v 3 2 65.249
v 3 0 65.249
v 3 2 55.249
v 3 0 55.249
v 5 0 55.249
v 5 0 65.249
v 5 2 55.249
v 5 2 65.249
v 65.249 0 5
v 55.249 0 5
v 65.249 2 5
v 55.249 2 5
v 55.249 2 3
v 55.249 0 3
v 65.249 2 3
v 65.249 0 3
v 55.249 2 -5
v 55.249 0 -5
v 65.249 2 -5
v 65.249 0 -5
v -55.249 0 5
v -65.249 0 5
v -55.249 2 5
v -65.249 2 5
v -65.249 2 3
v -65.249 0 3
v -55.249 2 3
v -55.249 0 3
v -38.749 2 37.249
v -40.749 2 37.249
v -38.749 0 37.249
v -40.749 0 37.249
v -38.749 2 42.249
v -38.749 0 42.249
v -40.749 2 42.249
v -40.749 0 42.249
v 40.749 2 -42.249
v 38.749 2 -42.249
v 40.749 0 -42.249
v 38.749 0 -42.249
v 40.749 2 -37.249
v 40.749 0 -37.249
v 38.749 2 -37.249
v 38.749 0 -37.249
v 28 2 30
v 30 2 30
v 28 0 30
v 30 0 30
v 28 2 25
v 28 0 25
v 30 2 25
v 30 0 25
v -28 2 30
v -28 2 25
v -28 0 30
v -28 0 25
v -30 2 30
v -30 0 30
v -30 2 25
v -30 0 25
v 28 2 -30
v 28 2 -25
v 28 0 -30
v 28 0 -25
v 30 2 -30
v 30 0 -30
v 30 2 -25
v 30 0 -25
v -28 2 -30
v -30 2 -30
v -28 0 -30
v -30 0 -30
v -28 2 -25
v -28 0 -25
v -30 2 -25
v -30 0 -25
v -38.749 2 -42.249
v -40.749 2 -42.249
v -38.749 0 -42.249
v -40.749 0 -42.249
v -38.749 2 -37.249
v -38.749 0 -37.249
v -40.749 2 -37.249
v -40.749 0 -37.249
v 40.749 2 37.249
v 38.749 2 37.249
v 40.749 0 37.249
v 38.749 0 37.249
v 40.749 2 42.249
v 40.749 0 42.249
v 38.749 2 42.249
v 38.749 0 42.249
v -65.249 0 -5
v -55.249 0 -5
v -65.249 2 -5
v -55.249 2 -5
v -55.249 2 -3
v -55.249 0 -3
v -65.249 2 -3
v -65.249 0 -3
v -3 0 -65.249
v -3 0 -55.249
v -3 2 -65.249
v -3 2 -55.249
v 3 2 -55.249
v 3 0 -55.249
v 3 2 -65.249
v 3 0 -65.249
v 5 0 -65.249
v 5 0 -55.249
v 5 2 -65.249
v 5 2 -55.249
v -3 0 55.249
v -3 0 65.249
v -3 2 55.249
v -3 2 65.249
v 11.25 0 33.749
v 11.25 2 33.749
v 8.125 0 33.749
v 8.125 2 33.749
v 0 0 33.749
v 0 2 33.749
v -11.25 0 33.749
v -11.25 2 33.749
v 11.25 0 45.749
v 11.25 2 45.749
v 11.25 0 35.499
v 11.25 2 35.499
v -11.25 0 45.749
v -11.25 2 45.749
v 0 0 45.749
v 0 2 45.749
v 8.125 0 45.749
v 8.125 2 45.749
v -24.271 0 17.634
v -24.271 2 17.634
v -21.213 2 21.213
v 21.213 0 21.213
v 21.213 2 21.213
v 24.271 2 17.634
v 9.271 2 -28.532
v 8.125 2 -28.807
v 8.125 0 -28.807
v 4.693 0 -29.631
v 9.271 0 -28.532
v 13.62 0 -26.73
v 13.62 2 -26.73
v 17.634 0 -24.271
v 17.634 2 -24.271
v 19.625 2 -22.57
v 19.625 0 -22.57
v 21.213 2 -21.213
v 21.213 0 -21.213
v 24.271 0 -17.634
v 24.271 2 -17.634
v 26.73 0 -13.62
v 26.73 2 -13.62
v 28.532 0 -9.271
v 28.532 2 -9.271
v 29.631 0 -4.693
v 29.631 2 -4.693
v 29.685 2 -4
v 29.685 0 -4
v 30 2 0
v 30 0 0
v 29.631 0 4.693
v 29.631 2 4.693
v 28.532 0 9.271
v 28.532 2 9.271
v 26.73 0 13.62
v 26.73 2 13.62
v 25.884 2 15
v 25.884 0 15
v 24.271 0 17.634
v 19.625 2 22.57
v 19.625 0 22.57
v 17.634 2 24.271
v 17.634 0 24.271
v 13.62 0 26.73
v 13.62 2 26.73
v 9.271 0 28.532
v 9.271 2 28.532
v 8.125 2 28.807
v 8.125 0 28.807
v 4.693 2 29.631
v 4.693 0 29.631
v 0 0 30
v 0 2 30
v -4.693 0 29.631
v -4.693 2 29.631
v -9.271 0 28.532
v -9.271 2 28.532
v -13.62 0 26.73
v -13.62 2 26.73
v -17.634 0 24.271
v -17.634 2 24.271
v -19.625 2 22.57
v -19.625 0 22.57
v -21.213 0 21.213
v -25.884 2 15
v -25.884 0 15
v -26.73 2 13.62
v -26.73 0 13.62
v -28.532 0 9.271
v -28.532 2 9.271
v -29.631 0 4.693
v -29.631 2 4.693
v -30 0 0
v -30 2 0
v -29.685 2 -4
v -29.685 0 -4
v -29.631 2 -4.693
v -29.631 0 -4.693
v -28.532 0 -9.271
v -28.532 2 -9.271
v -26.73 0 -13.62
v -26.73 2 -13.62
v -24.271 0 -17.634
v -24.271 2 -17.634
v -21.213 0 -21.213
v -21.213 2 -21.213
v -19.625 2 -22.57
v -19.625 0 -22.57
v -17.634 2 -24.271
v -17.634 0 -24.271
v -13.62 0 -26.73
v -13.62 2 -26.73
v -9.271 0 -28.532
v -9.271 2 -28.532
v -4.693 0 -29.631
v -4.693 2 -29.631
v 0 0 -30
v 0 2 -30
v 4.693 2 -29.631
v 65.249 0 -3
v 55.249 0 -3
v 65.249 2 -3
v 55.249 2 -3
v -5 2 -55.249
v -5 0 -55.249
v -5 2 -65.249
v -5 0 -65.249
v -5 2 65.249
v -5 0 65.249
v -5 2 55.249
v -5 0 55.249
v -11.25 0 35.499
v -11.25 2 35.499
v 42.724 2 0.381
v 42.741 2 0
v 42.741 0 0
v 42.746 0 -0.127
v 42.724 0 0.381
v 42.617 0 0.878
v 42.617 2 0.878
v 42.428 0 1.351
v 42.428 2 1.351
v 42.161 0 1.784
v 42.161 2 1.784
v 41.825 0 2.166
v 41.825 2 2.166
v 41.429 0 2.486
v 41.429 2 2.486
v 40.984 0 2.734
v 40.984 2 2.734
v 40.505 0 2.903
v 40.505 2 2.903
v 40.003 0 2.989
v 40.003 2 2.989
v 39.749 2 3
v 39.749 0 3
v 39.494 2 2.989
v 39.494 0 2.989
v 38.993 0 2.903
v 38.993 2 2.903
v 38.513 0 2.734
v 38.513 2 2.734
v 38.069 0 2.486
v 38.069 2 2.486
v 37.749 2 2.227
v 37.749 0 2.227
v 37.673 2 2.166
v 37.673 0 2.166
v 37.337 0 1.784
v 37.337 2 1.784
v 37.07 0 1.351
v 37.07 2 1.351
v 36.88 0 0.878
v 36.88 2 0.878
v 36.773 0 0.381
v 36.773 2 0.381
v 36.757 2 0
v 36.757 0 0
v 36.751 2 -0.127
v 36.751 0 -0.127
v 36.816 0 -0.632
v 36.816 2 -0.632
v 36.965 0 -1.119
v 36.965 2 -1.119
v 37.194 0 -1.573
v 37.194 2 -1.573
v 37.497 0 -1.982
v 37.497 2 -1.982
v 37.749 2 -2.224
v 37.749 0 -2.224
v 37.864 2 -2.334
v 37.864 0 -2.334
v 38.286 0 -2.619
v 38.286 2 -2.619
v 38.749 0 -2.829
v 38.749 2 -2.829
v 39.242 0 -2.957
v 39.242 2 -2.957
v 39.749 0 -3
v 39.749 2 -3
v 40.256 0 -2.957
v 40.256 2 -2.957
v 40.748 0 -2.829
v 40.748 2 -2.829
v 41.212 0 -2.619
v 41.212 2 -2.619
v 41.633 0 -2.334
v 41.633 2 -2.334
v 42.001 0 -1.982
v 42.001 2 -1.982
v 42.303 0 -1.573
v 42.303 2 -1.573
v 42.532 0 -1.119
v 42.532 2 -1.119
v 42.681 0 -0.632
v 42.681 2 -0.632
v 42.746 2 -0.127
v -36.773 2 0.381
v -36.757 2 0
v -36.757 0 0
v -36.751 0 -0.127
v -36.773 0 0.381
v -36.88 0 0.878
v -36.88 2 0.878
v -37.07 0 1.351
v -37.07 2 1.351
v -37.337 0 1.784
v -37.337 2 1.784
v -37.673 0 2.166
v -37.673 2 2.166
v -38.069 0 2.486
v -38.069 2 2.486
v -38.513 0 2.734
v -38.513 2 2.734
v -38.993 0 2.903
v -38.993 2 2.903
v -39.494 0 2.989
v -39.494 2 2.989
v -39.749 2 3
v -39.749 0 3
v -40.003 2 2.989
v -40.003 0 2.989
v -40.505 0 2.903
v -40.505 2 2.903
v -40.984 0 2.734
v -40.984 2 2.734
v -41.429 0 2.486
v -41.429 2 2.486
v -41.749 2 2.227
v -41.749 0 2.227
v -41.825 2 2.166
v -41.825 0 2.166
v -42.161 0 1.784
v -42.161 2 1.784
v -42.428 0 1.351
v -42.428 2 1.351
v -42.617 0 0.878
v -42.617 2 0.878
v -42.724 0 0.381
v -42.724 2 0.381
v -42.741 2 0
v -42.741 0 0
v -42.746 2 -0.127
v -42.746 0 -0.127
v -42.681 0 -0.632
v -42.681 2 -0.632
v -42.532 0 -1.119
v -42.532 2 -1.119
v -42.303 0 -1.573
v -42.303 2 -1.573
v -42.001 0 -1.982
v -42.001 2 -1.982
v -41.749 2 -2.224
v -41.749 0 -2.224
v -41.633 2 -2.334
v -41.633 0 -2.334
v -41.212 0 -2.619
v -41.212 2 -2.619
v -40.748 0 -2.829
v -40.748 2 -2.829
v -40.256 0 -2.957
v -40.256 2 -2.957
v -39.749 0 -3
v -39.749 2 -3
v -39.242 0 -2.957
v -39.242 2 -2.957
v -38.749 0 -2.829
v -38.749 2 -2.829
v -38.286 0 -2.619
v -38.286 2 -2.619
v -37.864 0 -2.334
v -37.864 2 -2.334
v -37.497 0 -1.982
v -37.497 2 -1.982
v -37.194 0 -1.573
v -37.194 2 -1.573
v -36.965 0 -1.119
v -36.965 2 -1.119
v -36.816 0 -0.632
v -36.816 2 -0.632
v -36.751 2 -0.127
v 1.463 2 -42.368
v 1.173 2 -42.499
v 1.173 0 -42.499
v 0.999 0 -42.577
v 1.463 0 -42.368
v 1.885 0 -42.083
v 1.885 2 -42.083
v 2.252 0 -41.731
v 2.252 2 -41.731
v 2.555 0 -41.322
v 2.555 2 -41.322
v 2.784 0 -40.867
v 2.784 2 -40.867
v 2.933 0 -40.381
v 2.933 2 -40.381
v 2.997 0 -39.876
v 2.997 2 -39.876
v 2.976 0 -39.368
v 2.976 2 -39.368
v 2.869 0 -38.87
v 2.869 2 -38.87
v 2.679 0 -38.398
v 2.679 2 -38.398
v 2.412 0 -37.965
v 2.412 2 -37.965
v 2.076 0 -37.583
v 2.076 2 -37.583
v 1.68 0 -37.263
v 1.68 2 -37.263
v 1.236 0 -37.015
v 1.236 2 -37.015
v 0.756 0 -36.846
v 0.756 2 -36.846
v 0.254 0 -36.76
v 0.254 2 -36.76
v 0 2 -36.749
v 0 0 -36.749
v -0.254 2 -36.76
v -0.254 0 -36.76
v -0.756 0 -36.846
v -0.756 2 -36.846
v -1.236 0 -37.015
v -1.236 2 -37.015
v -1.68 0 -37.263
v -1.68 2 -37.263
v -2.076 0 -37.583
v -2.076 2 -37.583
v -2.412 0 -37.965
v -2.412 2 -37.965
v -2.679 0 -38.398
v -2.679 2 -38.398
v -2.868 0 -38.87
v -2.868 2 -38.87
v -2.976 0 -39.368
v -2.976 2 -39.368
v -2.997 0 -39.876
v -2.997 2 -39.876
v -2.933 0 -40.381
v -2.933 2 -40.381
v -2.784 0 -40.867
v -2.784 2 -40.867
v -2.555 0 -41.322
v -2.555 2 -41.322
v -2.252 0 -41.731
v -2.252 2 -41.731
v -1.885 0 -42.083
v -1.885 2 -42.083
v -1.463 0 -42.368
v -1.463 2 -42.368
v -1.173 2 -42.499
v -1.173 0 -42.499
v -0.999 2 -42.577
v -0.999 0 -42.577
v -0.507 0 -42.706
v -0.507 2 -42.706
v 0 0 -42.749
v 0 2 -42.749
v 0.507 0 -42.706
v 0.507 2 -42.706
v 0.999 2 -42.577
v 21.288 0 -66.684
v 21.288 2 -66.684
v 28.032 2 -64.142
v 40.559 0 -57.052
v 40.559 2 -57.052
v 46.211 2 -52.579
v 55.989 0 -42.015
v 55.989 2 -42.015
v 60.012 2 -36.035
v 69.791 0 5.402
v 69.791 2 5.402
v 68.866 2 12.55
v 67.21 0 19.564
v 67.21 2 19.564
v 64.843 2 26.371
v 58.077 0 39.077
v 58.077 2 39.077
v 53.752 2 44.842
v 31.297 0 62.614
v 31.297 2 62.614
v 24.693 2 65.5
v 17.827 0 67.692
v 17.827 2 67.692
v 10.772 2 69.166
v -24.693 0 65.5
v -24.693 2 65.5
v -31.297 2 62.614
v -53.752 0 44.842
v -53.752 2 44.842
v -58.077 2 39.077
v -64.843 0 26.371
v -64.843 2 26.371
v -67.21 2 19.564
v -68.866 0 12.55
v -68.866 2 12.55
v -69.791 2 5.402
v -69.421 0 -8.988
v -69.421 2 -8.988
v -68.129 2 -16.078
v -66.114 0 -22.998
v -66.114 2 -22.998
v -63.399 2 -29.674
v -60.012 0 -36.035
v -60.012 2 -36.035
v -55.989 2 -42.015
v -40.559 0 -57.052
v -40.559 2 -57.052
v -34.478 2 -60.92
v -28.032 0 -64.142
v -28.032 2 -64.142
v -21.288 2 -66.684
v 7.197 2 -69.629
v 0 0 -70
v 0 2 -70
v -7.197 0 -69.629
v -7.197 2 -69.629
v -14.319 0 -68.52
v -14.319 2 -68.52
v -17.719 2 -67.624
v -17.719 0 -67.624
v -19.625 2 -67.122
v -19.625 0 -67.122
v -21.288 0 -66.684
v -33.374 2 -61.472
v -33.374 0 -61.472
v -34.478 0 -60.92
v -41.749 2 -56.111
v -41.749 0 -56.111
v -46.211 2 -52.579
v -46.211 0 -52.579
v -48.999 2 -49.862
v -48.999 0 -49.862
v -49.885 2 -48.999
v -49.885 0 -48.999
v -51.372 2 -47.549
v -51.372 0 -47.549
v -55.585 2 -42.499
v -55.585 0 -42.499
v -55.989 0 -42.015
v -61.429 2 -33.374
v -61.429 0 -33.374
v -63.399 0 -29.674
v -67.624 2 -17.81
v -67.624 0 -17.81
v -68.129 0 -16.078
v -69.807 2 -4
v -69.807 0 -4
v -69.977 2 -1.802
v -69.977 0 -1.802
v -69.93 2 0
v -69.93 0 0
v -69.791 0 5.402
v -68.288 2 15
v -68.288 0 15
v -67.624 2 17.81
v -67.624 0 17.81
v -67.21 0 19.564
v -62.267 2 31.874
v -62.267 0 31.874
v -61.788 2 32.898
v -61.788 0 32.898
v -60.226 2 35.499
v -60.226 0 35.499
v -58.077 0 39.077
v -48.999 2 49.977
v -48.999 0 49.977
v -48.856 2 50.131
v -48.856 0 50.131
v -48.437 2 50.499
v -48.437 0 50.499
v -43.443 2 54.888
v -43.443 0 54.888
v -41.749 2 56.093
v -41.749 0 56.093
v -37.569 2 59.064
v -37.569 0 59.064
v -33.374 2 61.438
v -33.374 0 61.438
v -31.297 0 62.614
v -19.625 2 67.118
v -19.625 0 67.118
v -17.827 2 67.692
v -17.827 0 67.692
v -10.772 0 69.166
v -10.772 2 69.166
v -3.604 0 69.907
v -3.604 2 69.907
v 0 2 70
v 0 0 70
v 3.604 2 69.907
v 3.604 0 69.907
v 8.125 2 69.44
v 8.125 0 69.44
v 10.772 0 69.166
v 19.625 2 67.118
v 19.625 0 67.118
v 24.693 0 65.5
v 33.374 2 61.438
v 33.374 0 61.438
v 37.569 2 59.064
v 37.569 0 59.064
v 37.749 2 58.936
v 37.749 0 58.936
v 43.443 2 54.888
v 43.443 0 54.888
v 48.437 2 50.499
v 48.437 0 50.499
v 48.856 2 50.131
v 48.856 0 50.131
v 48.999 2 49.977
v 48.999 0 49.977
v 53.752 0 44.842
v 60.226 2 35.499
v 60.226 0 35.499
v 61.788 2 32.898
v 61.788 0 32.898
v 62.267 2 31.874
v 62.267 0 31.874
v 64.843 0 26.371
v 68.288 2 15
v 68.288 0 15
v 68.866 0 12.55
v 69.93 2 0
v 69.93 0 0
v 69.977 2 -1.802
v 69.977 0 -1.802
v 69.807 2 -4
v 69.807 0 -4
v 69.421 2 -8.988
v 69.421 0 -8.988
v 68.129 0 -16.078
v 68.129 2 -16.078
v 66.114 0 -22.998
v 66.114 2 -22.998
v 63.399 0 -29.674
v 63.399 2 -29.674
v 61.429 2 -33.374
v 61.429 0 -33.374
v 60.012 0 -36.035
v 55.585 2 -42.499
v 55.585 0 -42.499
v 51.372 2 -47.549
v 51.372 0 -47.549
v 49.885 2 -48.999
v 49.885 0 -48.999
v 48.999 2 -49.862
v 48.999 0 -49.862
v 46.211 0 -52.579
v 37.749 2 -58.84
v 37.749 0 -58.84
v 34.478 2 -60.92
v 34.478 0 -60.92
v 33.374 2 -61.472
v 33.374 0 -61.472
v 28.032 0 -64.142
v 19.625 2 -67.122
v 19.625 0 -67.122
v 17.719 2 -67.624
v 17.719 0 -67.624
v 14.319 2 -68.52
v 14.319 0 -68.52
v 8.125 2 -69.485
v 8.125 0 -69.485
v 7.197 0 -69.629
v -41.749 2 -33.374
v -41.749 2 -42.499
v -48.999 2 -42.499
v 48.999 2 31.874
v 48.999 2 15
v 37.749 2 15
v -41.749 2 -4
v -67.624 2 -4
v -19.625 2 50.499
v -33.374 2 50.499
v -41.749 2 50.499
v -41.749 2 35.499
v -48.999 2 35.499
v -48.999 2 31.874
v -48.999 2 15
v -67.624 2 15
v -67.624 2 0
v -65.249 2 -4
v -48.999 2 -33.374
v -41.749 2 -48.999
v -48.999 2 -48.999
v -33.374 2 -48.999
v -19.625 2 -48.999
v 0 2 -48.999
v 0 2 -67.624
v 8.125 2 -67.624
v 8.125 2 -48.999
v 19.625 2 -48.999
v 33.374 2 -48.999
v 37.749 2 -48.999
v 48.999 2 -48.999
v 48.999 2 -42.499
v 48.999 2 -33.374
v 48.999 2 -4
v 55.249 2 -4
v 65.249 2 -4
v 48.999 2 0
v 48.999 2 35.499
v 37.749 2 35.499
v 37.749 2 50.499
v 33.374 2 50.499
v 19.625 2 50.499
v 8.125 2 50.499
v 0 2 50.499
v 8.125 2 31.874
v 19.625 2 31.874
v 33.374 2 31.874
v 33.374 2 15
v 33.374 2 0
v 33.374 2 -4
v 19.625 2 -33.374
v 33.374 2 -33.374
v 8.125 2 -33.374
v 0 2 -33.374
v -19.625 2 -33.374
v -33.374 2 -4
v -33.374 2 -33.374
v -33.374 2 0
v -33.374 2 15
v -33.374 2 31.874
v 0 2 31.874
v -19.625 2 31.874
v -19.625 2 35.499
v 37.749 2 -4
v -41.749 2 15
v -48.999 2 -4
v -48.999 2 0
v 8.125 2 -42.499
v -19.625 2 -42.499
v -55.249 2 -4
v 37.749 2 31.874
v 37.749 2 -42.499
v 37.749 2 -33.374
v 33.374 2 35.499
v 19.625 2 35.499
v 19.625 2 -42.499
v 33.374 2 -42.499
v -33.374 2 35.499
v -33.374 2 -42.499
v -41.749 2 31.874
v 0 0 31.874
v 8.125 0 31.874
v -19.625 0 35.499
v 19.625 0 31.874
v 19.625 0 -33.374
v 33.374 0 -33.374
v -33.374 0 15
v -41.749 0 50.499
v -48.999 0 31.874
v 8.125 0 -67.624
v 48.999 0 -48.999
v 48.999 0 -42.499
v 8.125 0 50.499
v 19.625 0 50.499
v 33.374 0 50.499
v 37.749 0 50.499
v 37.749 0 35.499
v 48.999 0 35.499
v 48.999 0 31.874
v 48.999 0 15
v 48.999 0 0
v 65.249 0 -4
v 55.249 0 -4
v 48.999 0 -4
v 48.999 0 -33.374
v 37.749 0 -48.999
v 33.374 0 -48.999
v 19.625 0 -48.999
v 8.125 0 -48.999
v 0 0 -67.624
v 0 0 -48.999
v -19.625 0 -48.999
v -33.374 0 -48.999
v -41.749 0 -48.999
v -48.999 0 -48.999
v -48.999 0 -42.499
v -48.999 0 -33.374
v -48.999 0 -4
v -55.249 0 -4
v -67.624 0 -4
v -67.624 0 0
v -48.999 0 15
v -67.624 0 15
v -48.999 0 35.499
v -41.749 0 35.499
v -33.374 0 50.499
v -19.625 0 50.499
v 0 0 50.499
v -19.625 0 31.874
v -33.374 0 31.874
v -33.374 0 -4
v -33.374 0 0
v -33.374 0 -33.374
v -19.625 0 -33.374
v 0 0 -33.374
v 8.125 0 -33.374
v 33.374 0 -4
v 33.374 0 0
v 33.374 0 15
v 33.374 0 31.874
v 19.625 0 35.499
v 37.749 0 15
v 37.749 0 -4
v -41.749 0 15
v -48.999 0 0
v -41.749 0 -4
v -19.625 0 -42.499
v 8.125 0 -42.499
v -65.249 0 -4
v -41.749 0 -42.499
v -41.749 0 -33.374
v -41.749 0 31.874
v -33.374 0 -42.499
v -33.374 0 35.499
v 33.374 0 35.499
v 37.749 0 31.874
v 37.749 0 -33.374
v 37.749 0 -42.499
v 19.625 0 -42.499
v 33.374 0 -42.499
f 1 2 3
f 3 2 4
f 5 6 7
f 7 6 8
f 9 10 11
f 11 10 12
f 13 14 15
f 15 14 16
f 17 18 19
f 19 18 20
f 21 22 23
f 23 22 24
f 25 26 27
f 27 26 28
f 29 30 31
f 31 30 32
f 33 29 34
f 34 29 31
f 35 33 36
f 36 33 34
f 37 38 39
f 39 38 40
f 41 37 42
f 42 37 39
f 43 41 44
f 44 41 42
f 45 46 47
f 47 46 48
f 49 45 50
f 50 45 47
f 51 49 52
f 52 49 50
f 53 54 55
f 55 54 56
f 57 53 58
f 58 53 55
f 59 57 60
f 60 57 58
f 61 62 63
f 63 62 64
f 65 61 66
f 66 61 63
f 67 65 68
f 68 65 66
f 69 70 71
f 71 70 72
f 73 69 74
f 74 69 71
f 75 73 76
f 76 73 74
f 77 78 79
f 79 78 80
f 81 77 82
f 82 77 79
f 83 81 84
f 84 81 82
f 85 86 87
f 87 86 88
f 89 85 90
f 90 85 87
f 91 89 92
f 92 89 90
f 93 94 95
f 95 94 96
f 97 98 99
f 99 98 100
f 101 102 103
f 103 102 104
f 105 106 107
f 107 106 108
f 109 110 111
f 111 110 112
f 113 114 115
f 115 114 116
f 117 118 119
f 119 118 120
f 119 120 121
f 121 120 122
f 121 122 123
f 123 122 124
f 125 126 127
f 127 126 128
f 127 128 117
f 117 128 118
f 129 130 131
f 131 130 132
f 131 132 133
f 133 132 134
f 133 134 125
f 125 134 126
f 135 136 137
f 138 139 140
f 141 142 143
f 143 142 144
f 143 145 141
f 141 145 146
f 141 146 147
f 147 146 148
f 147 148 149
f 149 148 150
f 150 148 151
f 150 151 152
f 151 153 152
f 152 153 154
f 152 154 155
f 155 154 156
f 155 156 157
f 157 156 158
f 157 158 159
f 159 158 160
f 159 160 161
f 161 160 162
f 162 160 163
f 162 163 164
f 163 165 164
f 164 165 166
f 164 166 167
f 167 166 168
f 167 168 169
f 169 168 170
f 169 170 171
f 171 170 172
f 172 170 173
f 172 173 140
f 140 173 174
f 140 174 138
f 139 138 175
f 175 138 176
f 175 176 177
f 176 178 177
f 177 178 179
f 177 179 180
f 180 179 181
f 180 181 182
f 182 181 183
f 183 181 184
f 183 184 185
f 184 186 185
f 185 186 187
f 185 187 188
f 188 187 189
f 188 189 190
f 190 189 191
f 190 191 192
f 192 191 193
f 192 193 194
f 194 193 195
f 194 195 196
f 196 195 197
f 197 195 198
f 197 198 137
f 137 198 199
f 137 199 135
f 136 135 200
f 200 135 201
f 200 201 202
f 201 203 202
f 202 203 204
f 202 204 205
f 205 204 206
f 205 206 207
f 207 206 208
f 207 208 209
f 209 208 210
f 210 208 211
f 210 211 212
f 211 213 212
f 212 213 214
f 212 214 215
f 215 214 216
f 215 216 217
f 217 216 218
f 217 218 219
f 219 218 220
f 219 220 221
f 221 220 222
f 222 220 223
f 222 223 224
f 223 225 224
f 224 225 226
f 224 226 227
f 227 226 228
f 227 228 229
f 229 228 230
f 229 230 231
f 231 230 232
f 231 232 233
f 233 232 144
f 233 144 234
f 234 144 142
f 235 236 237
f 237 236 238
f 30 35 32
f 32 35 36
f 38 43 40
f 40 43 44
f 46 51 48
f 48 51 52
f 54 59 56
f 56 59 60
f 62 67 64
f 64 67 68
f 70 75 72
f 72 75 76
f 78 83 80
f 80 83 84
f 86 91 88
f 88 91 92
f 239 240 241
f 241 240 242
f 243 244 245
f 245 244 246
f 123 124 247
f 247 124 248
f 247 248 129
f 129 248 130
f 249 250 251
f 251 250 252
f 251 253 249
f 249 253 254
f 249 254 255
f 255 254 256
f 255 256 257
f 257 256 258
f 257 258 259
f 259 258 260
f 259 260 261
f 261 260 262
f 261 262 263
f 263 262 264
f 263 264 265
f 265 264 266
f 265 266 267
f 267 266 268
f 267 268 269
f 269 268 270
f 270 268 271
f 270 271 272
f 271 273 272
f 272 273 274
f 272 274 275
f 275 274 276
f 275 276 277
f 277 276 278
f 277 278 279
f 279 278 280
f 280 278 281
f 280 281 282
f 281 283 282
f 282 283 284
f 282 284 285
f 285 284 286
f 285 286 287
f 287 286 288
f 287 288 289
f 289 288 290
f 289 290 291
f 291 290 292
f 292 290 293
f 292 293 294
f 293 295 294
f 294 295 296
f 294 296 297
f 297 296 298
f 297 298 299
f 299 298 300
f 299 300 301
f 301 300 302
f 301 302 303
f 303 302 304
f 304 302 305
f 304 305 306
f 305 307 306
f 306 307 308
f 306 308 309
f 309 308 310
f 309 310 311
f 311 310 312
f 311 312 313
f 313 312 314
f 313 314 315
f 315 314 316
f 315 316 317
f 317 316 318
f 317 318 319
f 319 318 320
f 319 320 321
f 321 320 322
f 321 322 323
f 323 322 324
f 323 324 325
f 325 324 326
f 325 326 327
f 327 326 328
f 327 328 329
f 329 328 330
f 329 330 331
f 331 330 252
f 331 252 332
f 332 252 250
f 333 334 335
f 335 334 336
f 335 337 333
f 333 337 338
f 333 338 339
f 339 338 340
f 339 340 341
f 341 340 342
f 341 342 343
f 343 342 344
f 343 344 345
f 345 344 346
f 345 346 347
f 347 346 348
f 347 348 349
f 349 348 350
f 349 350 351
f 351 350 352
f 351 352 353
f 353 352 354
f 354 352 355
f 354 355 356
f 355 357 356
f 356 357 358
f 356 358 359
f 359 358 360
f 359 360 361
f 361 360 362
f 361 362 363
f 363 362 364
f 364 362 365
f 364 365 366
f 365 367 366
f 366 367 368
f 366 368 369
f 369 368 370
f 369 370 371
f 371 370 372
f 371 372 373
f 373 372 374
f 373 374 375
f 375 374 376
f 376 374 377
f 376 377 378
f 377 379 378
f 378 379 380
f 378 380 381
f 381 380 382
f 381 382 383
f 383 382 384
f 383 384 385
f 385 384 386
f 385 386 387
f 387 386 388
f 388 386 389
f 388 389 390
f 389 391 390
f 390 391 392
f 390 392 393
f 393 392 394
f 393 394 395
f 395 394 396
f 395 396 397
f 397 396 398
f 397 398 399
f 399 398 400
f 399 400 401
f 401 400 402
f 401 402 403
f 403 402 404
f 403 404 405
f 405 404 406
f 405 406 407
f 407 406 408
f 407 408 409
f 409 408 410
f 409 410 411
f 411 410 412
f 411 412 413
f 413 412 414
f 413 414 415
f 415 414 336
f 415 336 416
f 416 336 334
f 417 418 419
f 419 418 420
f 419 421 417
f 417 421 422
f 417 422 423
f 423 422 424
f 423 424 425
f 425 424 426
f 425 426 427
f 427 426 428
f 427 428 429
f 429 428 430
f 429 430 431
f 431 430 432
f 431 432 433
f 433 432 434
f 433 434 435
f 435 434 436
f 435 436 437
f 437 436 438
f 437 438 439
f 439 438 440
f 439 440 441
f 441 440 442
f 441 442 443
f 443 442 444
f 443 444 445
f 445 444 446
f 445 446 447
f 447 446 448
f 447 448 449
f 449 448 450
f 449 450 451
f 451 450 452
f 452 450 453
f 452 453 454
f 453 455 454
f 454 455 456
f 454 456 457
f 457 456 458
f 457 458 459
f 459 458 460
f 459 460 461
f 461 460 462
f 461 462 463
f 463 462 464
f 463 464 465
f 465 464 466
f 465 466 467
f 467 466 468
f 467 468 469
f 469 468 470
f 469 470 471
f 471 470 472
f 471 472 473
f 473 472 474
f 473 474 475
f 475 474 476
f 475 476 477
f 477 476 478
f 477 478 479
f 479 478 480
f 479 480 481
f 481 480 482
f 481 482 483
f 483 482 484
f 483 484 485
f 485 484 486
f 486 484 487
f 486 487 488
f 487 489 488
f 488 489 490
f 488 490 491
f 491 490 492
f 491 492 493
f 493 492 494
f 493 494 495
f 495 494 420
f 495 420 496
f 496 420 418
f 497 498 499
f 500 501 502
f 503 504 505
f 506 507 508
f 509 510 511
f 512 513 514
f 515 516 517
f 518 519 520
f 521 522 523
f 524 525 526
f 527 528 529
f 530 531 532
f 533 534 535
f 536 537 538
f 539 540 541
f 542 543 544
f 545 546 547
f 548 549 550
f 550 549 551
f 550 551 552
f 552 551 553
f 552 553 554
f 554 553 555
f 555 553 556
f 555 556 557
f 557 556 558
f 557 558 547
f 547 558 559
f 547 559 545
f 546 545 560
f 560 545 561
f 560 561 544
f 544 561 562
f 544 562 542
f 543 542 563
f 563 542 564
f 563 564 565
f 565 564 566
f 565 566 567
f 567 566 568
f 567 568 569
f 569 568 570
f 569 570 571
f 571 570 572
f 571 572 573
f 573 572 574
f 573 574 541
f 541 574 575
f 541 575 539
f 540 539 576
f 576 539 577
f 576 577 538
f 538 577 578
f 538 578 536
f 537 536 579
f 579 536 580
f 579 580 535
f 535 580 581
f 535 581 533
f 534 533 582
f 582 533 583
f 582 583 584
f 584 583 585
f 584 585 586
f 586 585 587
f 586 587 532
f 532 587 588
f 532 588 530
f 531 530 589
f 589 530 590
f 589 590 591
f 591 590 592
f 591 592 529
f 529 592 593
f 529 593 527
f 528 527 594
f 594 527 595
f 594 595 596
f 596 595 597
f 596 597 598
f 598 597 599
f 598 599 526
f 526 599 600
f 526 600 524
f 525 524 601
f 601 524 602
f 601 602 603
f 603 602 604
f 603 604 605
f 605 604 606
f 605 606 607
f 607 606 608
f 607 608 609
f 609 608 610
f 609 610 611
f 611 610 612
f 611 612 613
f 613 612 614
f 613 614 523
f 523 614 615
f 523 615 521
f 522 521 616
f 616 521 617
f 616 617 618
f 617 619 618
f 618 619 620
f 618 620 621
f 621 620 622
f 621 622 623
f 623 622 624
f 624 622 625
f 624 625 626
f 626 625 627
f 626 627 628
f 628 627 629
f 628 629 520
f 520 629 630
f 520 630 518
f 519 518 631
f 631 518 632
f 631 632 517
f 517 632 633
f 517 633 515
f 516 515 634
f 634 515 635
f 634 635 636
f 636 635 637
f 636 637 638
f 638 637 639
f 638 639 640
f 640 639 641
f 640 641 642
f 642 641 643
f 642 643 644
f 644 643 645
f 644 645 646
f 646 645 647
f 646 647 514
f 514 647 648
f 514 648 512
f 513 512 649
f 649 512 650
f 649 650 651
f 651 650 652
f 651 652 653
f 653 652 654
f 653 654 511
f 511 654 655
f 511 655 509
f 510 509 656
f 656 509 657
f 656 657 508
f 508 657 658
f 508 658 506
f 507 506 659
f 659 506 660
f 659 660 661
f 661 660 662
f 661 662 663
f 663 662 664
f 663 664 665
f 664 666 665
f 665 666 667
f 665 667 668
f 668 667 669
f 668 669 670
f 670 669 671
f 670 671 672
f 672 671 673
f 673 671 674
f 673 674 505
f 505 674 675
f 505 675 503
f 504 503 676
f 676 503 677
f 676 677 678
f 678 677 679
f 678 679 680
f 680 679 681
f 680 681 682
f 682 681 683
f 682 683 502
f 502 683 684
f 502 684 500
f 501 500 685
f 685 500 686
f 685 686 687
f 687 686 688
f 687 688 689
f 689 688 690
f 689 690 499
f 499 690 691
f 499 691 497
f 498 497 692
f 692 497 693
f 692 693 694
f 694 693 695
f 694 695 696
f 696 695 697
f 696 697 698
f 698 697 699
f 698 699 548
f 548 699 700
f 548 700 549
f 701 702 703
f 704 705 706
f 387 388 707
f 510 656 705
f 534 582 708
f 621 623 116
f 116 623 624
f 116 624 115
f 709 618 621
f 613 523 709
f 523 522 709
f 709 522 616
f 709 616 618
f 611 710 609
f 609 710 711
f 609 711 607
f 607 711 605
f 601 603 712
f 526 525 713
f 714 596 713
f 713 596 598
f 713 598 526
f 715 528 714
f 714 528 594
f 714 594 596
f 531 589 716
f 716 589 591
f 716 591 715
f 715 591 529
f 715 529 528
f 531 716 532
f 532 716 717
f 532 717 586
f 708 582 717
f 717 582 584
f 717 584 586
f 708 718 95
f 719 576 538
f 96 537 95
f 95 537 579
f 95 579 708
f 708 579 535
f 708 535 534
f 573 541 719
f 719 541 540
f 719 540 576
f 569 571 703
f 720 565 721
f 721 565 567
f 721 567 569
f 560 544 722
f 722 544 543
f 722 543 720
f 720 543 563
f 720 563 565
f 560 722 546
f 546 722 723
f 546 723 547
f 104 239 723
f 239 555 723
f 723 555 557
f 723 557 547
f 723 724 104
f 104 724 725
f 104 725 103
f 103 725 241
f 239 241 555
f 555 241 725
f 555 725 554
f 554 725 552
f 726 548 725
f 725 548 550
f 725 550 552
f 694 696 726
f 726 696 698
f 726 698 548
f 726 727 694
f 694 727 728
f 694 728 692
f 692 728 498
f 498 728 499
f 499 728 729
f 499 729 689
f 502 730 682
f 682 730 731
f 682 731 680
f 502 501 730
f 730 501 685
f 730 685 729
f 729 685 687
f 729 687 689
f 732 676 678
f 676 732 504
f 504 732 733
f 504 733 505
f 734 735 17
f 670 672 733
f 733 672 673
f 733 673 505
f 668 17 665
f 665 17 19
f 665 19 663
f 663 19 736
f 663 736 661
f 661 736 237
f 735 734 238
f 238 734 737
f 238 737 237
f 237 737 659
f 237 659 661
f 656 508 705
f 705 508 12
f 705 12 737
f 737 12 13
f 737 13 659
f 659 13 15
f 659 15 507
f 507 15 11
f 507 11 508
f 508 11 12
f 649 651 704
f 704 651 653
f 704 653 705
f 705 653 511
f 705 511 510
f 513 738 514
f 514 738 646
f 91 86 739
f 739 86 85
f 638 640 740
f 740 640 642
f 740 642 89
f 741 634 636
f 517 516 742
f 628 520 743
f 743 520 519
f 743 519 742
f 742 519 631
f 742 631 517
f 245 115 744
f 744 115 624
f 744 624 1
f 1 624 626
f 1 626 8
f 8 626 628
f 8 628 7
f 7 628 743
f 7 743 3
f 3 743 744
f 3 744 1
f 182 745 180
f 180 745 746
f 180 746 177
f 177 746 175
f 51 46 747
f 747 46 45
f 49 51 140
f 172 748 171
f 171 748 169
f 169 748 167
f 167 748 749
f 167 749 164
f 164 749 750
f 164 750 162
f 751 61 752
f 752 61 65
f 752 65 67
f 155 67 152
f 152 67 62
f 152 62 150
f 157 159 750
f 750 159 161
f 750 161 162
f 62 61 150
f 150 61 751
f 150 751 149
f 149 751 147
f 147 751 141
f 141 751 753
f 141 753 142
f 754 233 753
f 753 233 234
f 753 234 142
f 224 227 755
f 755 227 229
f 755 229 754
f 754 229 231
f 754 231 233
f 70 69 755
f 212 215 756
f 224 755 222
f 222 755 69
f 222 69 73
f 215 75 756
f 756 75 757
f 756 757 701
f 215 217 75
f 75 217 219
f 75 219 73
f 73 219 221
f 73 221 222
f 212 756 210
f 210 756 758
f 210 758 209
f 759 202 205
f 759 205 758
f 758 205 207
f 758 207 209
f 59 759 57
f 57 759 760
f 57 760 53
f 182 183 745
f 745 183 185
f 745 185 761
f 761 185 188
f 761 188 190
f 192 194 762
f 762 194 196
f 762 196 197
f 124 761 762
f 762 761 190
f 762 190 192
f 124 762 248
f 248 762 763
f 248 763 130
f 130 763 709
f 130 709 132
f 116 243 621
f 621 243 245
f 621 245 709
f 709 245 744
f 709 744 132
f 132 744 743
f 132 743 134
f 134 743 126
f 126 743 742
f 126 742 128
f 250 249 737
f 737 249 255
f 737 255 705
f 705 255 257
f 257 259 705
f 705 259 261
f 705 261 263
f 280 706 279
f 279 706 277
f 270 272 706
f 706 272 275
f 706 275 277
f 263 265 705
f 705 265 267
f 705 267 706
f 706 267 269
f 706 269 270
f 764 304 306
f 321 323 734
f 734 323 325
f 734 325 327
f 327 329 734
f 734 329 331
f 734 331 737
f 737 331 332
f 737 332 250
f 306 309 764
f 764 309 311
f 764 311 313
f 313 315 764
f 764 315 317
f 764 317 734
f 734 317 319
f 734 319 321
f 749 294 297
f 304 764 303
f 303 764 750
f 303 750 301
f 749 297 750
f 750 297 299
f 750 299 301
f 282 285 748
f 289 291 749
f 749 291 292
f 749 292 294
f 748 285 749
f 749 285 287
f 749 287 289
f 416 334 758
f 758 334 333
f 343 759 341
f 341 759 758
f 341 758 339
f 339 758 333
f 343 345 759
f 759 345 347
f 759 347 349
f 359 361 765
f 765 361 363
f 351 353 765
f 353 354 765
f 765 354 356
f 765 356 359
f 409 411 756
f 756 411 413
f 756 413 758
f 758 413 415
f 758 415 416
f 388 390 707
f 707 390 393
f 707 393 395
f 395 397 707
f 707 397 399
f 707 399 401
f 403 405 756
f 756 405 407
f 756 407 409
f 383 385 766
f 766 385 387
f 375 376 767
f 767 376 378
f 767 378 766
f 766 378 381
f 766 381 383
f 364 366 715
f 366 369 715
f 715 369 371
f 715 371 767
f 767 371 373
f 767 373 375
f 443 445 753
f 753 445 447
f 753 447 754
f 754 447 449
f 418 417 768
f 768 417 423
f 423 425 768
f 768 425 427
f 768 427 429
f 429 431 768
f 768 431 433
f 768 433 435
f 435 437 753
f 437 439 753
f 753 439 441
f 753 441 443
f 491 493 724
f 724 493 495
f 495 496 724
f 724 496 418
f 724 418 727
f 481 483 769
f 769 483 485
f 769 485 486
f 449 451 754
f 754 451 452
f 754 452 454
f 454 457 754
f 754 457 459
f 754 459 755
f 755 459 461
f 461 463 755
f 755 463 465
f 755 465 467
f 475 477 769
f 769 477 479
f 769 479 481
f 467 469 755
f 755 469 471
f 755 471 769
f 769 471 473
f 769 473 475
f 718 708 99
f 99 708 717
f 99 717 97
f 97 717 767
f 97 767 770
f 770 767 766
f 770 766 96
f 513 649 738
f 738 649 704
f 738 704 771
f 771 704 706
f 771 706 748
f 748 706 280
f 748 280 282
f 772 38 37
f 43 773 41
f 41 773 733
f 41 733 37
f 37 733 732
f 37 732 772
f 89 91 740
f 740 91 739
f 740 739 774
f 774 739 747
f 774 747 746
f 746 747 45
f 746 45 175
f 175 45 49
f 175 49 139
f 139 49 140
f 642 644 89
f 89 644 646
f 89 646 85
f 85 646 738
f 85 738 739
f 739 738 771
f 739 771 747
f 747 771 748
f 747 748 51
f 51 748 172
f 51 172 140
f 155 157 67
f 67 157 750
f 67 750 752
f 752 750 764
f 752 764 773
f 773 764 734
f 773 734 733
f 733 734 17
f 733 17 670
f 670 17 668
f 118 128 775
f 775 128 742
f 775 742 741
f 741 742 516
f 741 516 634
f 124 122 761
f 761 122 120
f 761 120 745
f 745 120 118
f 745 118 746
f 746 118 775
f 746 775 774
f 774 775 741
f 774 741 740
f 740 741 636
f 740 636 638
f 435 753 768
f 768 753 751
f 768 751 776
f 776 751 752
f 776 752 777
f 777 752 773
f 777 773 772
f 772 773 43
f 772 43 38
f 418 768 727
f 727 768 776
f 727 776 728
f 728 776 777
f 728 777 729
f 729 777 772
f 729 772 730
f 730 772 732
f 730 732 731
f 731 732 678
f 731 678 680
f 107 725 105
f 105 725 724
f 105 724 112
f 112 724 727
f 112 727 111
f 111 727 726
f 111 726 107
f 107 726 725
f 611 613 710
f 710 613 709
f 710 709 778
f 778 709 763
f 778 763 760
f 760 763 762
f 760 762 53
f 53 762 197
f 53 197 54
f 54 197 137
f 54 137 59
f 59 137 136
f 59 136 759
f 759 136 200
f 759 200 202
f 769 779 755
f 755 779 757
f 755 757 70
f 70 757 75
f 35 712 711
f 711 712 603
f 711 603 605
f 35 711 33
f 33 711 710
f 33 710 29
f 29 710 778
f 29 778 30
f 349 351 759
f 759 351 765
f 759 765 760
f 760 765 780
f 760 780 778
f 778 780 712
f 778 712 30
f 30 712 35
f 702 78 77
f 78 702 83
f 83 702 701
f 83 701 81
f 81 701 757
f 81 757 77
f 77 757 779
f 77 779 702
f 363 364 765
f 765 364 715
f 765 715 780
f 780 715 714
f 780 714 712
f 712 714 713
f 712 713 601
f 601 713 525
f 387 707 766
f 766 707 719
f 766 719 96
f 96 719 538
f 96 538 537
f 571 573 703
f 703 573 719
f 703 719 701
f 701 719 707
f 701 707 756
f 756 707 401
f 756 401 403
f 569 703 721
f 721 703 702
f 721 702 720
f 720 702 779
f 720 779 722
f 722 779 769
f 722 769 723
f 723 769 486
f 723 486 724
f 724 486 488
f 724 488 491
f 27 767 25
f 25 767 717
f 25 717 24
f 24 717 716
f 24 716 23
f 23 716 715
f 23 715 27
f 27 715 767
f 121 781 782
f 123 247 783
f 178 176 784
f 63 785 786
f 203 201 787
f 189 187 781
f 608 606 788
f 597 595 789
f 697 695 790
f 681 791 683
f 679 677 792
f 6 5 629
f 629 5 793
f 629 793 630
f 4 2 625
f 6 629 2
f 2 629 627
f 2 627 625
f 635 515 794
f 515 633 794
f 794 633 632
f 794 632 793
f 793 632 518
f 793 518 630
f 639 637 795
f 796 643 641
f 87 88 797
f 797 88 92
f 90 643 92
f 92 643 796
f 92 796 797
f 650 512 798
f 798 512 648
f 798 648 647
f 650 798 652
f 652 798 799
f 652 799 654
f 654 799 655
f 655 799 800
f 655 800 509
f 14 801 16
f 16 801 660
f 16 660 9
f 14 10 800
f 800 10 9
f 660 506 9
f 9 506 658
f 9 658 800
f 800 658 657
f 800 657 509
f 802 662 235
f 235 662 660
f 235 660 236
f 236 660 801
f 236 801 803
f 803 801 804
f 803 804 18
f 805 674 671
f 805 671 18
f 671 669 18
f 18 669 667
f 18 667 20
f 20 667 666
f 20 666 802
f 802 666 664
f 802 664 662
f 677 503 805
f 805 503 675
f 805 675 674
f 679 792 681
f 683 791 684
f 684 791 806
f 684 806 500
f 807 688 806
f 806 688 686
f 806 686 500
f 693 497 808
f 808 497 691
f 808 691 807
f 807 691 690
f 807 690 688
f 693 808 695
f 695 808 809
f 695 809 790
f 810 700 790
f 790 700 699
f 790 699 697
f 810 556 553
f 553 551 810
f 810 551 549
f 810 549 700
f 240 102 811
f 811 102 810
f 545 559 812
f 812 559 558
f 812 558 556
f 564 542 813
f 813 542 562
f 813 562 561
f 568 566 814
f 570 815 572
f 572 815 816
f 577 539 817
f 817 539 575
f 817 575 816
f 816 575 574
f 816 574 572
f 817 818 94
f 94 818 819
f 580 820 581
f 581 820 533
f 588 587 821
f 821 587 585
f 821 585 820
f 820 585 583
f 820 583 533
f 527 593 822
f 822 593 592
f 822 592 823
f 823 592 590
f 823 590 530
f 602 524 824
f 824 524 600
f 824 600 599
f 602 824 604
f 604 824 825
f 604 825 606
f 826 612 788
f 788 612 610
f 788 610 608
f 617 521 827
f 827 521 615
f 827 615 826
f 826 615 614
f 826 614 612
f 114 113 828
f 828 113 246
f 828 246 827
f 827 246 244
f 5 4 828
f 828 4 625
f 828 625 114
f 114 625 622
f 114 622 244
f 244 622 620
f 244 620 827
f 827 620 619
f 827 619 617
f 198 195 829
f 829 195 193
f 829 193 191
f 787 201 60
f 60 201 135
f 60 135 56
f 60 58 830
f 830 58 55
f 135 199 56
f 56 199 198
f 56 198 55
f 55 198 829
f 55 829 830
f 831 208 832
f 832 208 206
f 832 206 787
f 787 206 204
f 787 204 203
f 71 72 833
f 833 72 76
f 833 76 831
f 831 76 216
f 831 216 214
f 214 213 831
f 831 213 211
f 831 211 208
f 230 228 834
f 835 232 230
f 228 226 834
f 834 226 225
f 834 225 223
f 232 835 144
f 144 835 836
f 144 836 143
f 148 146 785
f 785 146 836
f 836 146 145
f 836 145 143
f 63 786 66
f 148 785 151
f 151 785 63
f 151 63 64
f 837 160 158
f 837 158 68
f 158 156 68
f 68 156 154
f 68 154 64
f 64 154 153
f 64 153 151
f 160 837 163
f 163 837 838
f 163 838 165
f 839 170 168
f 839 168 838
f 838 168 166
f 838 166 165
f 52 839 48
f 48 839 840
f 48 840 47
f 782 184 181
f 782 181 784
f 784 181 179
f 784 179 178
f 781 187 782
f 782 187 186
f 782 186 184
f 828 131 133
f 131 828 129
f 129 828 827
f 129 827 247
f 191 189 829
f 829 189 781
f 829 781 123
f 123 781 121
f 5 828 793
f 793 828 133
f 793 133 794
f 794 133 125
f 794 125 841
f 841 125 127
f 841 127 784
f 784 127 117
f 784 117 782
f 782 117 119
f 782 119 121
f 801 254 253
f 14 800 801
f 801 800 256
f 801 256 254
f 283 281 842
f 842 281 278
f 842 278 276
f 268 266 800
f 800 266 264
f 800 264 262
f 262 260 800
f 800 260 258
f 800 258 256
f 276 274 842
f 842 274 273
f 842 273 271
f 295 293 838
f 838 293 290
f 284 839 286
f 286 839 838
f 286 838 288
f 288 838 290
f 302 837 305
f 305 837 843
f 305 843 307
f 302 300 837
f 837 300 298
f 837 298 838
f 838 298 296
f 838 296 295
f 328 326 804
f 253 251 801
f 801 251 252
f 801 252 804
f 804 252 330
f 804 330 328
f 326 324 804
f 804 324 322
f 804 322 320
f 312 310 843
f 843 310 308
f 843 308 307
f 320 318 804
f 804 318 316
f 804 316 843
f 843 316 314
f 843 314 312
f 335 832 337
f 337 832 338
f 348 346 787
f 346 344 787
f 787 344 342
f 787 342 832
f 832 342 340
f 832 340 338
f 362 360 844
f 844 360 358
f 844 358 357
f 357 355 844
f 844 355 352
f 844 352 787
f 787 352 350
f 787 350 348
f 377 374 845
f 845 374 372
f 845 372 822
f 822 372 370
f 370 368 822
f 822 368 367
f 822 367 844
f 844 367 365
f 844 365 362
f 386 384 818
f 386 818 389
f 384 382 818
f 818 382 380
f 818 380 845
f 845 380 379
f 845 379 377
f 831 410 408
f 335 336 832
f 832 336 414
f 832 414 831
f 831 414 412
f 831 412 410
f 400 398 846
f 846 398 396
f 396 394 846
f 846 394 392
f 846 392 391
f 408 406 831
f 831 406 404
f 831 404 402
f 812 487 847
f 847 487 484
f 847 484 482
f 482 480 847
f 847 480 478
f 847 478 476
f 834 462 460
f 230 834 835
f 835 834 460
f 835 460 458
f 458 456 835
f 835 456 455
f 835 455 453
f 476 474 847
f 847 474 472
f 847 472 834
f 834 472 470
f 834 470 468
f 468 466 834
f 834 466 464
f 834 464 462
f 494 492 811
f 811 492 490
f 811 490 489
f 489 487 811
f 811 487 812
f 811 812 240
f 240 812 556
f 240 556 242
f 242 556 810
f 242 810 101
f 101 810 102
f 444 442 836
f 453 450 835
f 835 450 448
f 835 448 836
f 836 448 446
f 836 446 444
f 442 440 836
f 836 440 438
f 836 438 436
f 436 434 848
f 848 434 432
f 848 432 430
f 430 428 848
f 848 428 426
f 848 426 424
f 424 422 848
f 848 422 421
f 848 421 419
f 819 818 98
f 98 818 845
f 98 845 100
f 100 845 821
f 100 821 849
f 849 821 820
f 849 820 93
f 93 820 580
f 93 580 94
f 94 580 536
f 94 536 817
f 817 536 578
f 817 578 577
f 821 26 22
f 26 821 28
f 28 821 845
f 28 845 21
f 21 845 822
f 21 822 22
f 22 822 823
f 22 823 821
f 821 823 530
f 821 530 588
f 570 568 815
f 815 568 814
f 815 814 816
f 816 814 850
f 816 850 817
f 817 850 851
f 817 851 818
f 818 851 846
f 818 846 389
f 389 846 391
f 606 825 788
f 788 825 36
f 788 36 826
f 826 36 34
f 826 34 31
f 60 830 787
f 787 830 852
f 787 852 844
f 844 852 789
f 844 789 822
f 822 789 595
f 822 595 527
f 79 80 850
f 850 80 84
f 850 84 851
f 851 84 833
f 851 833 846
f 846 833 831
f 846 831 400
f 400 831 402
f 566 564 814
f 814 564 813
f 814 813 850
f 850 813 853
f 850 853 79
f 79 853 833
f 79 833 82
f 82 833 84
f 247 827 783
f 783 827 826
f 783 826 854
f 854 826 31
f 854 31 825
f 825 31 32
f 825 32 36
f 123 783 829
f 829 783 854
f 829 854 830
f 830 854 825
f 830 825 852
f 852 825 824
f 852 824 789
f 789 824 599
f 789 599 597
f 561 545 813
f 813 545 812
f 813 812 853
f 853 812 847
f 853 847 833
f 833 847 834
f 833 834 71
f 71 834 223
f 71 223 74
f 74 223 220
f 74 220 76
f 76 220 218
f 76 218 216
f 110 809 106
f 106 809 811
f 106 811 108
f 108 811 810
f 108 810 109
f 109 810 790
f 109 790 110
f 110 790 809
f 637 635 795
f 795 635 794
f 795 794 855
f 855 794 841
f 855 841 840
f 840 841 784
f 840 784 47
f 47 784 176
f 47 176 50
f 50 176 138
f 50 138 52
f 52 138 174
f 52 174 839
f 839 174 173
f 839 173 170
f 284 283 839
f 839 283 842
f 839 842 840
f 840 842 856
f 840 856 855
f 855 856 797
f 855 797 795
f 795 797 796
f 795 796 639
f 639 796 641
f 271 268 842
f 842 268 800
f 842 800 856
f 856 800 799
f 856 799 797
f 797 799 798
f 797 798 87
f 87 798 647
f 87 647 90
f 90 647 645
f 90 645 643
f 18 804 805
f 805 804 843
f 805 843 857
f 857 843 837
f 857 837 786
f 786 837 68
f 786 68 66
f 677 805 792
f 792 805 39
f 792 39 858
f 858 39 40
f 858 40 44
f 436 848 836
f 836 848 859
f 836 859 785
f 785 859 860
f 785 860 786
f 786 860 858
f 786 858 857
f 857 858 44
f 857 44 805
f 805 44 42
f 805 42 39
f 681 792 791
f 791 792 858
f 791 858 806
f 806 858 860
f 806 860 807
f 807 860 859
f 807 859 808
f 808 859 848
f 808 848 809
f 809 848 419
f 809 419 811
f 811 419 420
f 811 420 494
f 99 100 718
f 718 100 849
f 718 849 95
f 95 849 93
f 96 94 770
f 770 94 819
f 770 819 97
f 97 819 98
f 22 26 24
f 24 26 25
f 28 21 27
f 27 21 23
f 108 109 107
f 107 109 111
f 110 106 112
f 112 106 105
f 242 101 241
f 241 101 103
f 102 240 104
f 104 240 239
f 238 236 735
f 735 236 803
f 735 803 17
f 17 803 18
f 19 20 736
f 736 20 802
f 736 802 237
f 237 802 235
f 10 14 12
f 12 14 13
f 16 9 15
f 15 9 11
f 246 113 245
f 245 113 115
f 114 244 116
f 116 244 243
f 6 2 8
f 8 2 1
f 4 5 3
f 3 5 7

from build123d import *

# Parameters (mm, degrees)
SKETCH1_R                   = 70
SKETCH1_R_2                 = 30
SKETCH1_R_3                 = 3
SKETCH1_W                   = 2
SKETCH1_H                   = 5
SKETCH1_W_2                 = 22.5
SKETCH1_H_2                 = 12
SKETCH1_W_3                 = 5
SKETCH1_H_3                 = 2
Y_KSEKLIK_EKSTR_ZYON1_DEPTH = 2
SKETCH3_W                   = 2
SKETCH3_H                   = 2
SKETCH3_W_2                 = 3
BOSS_EXTRUDE1_DEPTH         = 2
SKETCH5_W                   = 5
SKETCH5_H                   = 2
CUT_EXTRUDE1_DEPTH          = 2
SKETCH6_W                   = 2
SKETCH6_H                   = 2
SKETCH6_W_2                 = 3
BOSS_EXTRUDE3_DEPTH         = 2
SKETCH8_W                   = 5
SKETCH8_H                   = 2
CUT_EXTRUDE2_DEPTH          = 2
SKETCH9_W                   = 2
SKETCH9_H                   = 2
SKETCH9_H_2                 = 3
BOSS_EXTRUDE4_DEPTH         = 2
SKETCH10_W                  = 2
SKETCH10_H                  = 2
SKETCH10_H_2                = 3
BOSS_EXTRUDE5_DEPTH         = 2
SKETCH12_W                  = 2
SKETCH12_H                  = 5
CUT_EXTRUDE4_DEPTH          = 2
SKETCH13_W                  = 2
SKETCH13_H                  = 5
CUT_EXTRUDE5_DEPTH          = 2
SKETCH14_W                  = 3
SKETCH14_H                  = 2
SKETCH14_W_2                = 2
BOSS_EXTRUDE6_DEPTH         = 2
SKETCH15_W                  = 5
SKETCH15_H                  = 2
CUT_EXTRUDE6_DEPTH          = 2
SKETCH16_W                  = 3
SKETCH16_H                  = 2
SKETCH16_W_2                = 2
BOSS_EXTRUDE9_DEPTH         = 2
SKETCH17_W                  = 5
SKETCH17_H                  = 2
CUT_EXTRUDE7_DEPTH          = 2
SKETCH18_W                  = 2
SKETCH18_H                  = 3
SKETCH18_H_2                = 2
BOSS_EXTRUDE10_DEPTH        = 2
SKETCH19_W                  = 2
SKETCH19_H                  = 5
CUT_EXTRUDE8_DEPTH          = 2


with BuildPart() as part:
    # Sketch1 → Yükseklik-Ekstrüzyon1 (new body)
    with BuildSketch(Plane(origin=(0, 0, 0), x_dir=(1, 0, 0), z_dir=(0, 1, 0))):
        with Locations(Location((0, 0, 0), (0, 0, 270))):
            Circle(SKETCH1_R)
        with Locations(Location((0, 0, 0), (0, 0, 270))):
            Circle(SKETCH1_R_2, mode=Mode.SUBTRACT)
        with Locations(Location((39.748737342, 0, 0), (0, 0, 270))):
            Circle(SKETCH1_R_3, mode=Mode.SUBTRACT)
        with Locations(Location((-39.748737342, 0, 0), (0, 0, 270))):
            Circle(SKETCH1_R_3, mode=Mode.SUBTRACT)
        with Locations(Location((0, 39.748737342, 0), (0, 0, 270))):
            Circle(SKETCH1_R_3, mode=Mode.SUBTRACT)
        with Locations((-29, 27.5)):
            Rectangle(SKETCH1_W, SKETCH1_H, mode=Mode.SUBTRACT)
        with Locations((29, 27.5)):
            Rectangle(SKETCH1_W, SKETCH1_H, mode=Mode.SUBTRACT)
        with Locations((-29, -27.5)):
            Rectangle(SKETCH1_W, SKETCH1_H, mode=Mode.SUBTRACT)
        with Locations((29, -27.5)):
            Rectangle(SKETCH1_W, SKETCH1_H, mode=Mode.SUBTRACT)
        with Locations((-39.748737342, 39.748737342)):
            Rectangle(SKETCH1_W, SKETCH1_H, mode=Mode.SUBTRACT)
        with Locations((39.748737342, 39.748737342)):
            Rectangle(SKETCH1_W, SKETCH1_H, mode=Mode.SUBTRACT)
        with Locations((39.748737342, -39.748737342)):
            Rectangle(SKETCH1_W, SKETCH1_H, mode=Mode.SUBTRACT)
        with Locations((-39.748737342, -39.748737342)):
            Rectangle(SKETCH1_W, SKETCH1_H, mode=Mode.SUBTRACT)
        with Locations((0, -39.748737342)):
            Rectangle(SKETCH1_W_2, SKETCH1_H_2, mode=Mode.SUBTRACT)
        with Locations((-64.748737342, 4)):
            Rectangle(SKETCH1_W_3, SKETCH1_H_3, mode=Mode.SUBTRACT)
        with Locations((-64.748737342, -4)):
            Rectangle(SKETCH1_W_3, SKETCH1_H_3, mode=Mode.SUBTRACT)
        with Locations((-54.748737342, -4)):
            Rectangle(SKETCH1_W_3, SKETCH1_H_3, mode=Mode.SUBTRACT)
        with Locations((-54.748737342, 4)):
            Rectangle(SKETCH1_W_3, SKETCH1_H_3, mode=Mode.SUBTRACT)
        with Locations((-4, 64.748737342)):
            Rectangle(SKETCH1_W, SKETCH1_H, mode=Mode.SUBTRACT)
        with Locations((-4, 54.748737342)):
            Rectangle(SKETCH1_W, SKETCH1_H, mode=Mode.SUBTRACT)
        with Locations((4, 54.748737342)):
            Rectangle(SKETCH1_W, SKETCH1_H, mode=Mode.SUBTRACT)
        with Locations((4, 64.748737342)):
            Rectangle(SKETCH1_W, SKETCH1_H, mode=Mode.SUBTRACT)
        with Locations((54.748737342, 4)):
            Rectangle(SKETCH1_W_3, SKETCH1_H_3, mode=Mode.SUBTRACT)
        with Locations((54.748737342, -4)):
            Rectangle(SKETCH1_W_3, SKETCH1_H_3, mode=Mode.SUBTRACT)
        with Locations((64.748737342, 4)):
            Rectangle(SKETCH1_W_3, SKETCH1_H_3, mode=Mode.SUBTRACT)
        with Locations((64.748737342, -4)):
            Rectangle(SKETCH1_W_3, SKETCH1_H_3, mode=Mode.SUBTRACT)
        with Locations((-4, -54.748737342)):
            Rectangle(SKETCH1_W, SKETCH1_H, mode=Mode.SUBTRACT)
        with Locations((4, -54.748737342)):
            Rectangle(SKETCH1_W, SKETCH1_H, mode=Mode.SUBTRACT)
        with Locations((4, -64.748737342)):
            Rectangle(SKETCH1_W, SKETCH1_H, mode=Mode.SUBTRACT)
        with Locations((-4, -64.748737342)):
            Rectangle(SKETCH1_W, SKETCH1_H, mode=Mode.SUBTRACT)
    extrude(amount=Y_KSEKLIK_EKSTR_ZYON1_DEPTH)

    # Sketch3 → Boss-Extrude1 (add)
    with BuildSketch(Plane(origin=(0, 2, 0), x_dir=(1, 0, 0), z_dir=(0, 1, 0))):
        with Locations((-66.248737342, 4)):
            Rectangle(SKETCH3_W, SKETCH3_H)
        with Locations((-53.748737342, 4)):
            Rectangle(SKETCH3_W_2, SKETCH3_H)
    extrude(amount=-BOSS_EXTRUDE1_DEPTH)

    # Sketch5 → Cut-Extrude1 (cut)
    with BuildSketch(Plane(origin=(0, 2, 0), x_dir=(1, 0, 0), z_dir=(0, 1, 0))):
        with Locations((-59.748737342, 4)):
            Rectangle(SKETCH5_W, SKETCH5_H)
    extrude(amount=-CUT_EXTRUDE1_DEPTH, mode=Mode.SUBTRACT)

    # Sketch6 → Boss-Extrude3 (add)
    with BuildSketch(Plane(origin=(0, 2, 0), x_dir=(1, 0, 0), z_dir=(0, 1, 0))):
        with Locations((-66.248737342, -4)):
            Rectangle(SKETCH6_W, SKETCH6_H)
        with Locations((-53.748737342, -4)):
            Rectangle(SKETCH6_W_2, SKETCH6_H)
    extrude(amount=-BOSS_EXTRUDE3_DEPTH)

    # Sketch8 → Cut-Extrude2 (cut)
    with BuildSketch(Plane(origin=(0, 2, 0), x_dir=(1, 0, 0), z_dir=(0, 1, 0))):
        with Locations((-59.748737342, -4)):
            Rectangle(SKETCH8_W, SKETCH8_H)
    extrude(amount=-CUT_EXTRUDE2_DEPTH, mode=Mode.SUBTRACT)

    # Sketch9 → Boss-Extrude4 (add)
    with BuildSketch(Plane(origin=(0, 2, 0), x_dir=(1, 0, 0), z_dir=(0, 1, 0))):
        with Locations((4, 66.248737342)):
            Rectangle(SKETCH9_W, SKETCH9_H)
        with Locations((4, 53.748737342)):
            Rectangle(SKETCH9_W, SKETCH9_H_2)
    extrude(amount=-BOSS_EXTRUDE4_DEPTH)

    # Sketch10 → Boss-Extrude5 (add)
    with BuildSketch(Plane(origin=(0, 2, 0), x_dir=(1, 0, 0), z_dir=(0, 1, 0))):
        with Locations((-4, 66.248737342)):
            Rectangle(SKETCH10_W, SKETCH10_H)
        with Locations((-4, 53.748737342)):
            Rectangle(SKETCH10_W, SKETCH10_H_2)
    extrude(amount=-BOSS_EXTRUDE5_DEPTH)

    # Sketch12 → Cut-Extrude4 (cut)
    with BuildSketch(Plane(origin=(0, 2, 0), x_dir=(1, 0, 0), z_dir=(0, 1, 0))):
        with Locations((-4, 59.748737342)):
            Rectangle(SKETCH12_W, SKETCH12_H)
    extrude(amount=-CUT_EXTRUDE4_DEPTH, mode=Mode.SUBTRACT)

    # Sketch13 → Cut-Extrude5 (cut)
    with BuildSketch(Plane(origin=(0, 2, 0), x_dir=(1, 0, 0), z_dir=(0, 1, 0))):
        with Locations((4, 59.748737342)):
            Rectangle(SKETCH13_W, SKETCH13_H)
    extrude(amount=-CUT_EXTRUDE5_DEPTH, mode=Mode.SUBTRACT)

    # Sketch14 → Boss-Extrude6 (add)
    with BuildSketch(Plane(origin=(0, 2, 0), x_dir=(1, 0, 0), z_dir=(0, 1, 0))):
        with Locations((53.748737342, 4)):
            Rectangle(SKETCH14_W, SKETCH14_H)
        with Locations((66.248737342, 4)):
            Rectangle(SKETCH14_W_2, SKETCH14_H)
    extrude(amount=-BOSS_EXTRUDE6_DEPTH)

    # Sketch15 → Cut-Extrude6 (cut)
    with BuildSketch(Plane(origin=(0, 2, 0), x_dir=(1, 0, 0), z_dir=(0, 1, 0))):
        with Locations((59.748737342, 4)):
            Rectangle(SKETCH15_W, SKETCH15_H)
    extrude(amount=-CUT_EXTRUDE6_DEPTH, mode=Mode.SUBTRACT)

    # Sketch16 → Boss-Extrude9 (add)
    with BuildSketch(Plane(origin=(0, 2, 0), x_dir=(1, 0, 0), z_dir=(0, 1, 0))):
        with Locations((53.748737342, -4)):
            Rectangle(SKETCH16_W, SKETCH16_H)
        with Locations((66.248737342, -4)):
            Rectangle(SKETCH16_W_2, SKETCH16_H)
    extrude(amount=-BOSS_EXTRUDE9_DEPTH)

    # Sketch17 → Cut-Extrude7 (cut)
    with BuildSketch(Plane(origin=(0, 2, 0), x_dir=(1, 0, 0), z_dir=(0, 1, 0))):
        with Locations((59.748737342, -4)):
            Rectangle(SKETCH17_W, SKETCH17_H)
    extrude(amount=-CUT_EXTRUDE7_DEPTH, mode=Mode.SUBTRACT)

    # Sketch18 → Boss-Extrude10 (add)
    with BuildSketch(Plane(origin=(0, 2, 0), x_dir=(1, 0, 0), z_dir=(0, 1, 0))):
        with Locations((-4, -53.748737342)):
            Rectangle(SKETCH18_W, SKETCH18_H)
        with Locations((-4, -66.248737342)):
            Rectangle(SKETCH18_W, SKETCH18_H_2)
        with Locations((4, -66.248737342)):
            Rectangle(SKETCH18_W, SKETCH18_H_2)
        with Locations((4, -53.748737342)):
            Rectangle(SKETCH18_W, SKETCH18_H)
    extrude(amount=-BOSS_EXTRUDE10_DEPTH)

    # Sketch19 → Cut-Extrude8 (cut)
    with BuildSketch(Plane(origin=(0, 2, 0), x_dir=(1, 0, 0), z_dir=(0, 1, 0))):
        with Locations((4, -59.748737342)):
            Rectangle(SKETCH19_W, SKETCH19_H)
        with Locations((-4, -59.748737342)):
            Rectangle(SKETCH19_W, SKETCH19_H)
    extrude(amount=-CUT_EXTRUDE8_DEPTH, mode=Mode.SUBTRACT)


solid = part.part
